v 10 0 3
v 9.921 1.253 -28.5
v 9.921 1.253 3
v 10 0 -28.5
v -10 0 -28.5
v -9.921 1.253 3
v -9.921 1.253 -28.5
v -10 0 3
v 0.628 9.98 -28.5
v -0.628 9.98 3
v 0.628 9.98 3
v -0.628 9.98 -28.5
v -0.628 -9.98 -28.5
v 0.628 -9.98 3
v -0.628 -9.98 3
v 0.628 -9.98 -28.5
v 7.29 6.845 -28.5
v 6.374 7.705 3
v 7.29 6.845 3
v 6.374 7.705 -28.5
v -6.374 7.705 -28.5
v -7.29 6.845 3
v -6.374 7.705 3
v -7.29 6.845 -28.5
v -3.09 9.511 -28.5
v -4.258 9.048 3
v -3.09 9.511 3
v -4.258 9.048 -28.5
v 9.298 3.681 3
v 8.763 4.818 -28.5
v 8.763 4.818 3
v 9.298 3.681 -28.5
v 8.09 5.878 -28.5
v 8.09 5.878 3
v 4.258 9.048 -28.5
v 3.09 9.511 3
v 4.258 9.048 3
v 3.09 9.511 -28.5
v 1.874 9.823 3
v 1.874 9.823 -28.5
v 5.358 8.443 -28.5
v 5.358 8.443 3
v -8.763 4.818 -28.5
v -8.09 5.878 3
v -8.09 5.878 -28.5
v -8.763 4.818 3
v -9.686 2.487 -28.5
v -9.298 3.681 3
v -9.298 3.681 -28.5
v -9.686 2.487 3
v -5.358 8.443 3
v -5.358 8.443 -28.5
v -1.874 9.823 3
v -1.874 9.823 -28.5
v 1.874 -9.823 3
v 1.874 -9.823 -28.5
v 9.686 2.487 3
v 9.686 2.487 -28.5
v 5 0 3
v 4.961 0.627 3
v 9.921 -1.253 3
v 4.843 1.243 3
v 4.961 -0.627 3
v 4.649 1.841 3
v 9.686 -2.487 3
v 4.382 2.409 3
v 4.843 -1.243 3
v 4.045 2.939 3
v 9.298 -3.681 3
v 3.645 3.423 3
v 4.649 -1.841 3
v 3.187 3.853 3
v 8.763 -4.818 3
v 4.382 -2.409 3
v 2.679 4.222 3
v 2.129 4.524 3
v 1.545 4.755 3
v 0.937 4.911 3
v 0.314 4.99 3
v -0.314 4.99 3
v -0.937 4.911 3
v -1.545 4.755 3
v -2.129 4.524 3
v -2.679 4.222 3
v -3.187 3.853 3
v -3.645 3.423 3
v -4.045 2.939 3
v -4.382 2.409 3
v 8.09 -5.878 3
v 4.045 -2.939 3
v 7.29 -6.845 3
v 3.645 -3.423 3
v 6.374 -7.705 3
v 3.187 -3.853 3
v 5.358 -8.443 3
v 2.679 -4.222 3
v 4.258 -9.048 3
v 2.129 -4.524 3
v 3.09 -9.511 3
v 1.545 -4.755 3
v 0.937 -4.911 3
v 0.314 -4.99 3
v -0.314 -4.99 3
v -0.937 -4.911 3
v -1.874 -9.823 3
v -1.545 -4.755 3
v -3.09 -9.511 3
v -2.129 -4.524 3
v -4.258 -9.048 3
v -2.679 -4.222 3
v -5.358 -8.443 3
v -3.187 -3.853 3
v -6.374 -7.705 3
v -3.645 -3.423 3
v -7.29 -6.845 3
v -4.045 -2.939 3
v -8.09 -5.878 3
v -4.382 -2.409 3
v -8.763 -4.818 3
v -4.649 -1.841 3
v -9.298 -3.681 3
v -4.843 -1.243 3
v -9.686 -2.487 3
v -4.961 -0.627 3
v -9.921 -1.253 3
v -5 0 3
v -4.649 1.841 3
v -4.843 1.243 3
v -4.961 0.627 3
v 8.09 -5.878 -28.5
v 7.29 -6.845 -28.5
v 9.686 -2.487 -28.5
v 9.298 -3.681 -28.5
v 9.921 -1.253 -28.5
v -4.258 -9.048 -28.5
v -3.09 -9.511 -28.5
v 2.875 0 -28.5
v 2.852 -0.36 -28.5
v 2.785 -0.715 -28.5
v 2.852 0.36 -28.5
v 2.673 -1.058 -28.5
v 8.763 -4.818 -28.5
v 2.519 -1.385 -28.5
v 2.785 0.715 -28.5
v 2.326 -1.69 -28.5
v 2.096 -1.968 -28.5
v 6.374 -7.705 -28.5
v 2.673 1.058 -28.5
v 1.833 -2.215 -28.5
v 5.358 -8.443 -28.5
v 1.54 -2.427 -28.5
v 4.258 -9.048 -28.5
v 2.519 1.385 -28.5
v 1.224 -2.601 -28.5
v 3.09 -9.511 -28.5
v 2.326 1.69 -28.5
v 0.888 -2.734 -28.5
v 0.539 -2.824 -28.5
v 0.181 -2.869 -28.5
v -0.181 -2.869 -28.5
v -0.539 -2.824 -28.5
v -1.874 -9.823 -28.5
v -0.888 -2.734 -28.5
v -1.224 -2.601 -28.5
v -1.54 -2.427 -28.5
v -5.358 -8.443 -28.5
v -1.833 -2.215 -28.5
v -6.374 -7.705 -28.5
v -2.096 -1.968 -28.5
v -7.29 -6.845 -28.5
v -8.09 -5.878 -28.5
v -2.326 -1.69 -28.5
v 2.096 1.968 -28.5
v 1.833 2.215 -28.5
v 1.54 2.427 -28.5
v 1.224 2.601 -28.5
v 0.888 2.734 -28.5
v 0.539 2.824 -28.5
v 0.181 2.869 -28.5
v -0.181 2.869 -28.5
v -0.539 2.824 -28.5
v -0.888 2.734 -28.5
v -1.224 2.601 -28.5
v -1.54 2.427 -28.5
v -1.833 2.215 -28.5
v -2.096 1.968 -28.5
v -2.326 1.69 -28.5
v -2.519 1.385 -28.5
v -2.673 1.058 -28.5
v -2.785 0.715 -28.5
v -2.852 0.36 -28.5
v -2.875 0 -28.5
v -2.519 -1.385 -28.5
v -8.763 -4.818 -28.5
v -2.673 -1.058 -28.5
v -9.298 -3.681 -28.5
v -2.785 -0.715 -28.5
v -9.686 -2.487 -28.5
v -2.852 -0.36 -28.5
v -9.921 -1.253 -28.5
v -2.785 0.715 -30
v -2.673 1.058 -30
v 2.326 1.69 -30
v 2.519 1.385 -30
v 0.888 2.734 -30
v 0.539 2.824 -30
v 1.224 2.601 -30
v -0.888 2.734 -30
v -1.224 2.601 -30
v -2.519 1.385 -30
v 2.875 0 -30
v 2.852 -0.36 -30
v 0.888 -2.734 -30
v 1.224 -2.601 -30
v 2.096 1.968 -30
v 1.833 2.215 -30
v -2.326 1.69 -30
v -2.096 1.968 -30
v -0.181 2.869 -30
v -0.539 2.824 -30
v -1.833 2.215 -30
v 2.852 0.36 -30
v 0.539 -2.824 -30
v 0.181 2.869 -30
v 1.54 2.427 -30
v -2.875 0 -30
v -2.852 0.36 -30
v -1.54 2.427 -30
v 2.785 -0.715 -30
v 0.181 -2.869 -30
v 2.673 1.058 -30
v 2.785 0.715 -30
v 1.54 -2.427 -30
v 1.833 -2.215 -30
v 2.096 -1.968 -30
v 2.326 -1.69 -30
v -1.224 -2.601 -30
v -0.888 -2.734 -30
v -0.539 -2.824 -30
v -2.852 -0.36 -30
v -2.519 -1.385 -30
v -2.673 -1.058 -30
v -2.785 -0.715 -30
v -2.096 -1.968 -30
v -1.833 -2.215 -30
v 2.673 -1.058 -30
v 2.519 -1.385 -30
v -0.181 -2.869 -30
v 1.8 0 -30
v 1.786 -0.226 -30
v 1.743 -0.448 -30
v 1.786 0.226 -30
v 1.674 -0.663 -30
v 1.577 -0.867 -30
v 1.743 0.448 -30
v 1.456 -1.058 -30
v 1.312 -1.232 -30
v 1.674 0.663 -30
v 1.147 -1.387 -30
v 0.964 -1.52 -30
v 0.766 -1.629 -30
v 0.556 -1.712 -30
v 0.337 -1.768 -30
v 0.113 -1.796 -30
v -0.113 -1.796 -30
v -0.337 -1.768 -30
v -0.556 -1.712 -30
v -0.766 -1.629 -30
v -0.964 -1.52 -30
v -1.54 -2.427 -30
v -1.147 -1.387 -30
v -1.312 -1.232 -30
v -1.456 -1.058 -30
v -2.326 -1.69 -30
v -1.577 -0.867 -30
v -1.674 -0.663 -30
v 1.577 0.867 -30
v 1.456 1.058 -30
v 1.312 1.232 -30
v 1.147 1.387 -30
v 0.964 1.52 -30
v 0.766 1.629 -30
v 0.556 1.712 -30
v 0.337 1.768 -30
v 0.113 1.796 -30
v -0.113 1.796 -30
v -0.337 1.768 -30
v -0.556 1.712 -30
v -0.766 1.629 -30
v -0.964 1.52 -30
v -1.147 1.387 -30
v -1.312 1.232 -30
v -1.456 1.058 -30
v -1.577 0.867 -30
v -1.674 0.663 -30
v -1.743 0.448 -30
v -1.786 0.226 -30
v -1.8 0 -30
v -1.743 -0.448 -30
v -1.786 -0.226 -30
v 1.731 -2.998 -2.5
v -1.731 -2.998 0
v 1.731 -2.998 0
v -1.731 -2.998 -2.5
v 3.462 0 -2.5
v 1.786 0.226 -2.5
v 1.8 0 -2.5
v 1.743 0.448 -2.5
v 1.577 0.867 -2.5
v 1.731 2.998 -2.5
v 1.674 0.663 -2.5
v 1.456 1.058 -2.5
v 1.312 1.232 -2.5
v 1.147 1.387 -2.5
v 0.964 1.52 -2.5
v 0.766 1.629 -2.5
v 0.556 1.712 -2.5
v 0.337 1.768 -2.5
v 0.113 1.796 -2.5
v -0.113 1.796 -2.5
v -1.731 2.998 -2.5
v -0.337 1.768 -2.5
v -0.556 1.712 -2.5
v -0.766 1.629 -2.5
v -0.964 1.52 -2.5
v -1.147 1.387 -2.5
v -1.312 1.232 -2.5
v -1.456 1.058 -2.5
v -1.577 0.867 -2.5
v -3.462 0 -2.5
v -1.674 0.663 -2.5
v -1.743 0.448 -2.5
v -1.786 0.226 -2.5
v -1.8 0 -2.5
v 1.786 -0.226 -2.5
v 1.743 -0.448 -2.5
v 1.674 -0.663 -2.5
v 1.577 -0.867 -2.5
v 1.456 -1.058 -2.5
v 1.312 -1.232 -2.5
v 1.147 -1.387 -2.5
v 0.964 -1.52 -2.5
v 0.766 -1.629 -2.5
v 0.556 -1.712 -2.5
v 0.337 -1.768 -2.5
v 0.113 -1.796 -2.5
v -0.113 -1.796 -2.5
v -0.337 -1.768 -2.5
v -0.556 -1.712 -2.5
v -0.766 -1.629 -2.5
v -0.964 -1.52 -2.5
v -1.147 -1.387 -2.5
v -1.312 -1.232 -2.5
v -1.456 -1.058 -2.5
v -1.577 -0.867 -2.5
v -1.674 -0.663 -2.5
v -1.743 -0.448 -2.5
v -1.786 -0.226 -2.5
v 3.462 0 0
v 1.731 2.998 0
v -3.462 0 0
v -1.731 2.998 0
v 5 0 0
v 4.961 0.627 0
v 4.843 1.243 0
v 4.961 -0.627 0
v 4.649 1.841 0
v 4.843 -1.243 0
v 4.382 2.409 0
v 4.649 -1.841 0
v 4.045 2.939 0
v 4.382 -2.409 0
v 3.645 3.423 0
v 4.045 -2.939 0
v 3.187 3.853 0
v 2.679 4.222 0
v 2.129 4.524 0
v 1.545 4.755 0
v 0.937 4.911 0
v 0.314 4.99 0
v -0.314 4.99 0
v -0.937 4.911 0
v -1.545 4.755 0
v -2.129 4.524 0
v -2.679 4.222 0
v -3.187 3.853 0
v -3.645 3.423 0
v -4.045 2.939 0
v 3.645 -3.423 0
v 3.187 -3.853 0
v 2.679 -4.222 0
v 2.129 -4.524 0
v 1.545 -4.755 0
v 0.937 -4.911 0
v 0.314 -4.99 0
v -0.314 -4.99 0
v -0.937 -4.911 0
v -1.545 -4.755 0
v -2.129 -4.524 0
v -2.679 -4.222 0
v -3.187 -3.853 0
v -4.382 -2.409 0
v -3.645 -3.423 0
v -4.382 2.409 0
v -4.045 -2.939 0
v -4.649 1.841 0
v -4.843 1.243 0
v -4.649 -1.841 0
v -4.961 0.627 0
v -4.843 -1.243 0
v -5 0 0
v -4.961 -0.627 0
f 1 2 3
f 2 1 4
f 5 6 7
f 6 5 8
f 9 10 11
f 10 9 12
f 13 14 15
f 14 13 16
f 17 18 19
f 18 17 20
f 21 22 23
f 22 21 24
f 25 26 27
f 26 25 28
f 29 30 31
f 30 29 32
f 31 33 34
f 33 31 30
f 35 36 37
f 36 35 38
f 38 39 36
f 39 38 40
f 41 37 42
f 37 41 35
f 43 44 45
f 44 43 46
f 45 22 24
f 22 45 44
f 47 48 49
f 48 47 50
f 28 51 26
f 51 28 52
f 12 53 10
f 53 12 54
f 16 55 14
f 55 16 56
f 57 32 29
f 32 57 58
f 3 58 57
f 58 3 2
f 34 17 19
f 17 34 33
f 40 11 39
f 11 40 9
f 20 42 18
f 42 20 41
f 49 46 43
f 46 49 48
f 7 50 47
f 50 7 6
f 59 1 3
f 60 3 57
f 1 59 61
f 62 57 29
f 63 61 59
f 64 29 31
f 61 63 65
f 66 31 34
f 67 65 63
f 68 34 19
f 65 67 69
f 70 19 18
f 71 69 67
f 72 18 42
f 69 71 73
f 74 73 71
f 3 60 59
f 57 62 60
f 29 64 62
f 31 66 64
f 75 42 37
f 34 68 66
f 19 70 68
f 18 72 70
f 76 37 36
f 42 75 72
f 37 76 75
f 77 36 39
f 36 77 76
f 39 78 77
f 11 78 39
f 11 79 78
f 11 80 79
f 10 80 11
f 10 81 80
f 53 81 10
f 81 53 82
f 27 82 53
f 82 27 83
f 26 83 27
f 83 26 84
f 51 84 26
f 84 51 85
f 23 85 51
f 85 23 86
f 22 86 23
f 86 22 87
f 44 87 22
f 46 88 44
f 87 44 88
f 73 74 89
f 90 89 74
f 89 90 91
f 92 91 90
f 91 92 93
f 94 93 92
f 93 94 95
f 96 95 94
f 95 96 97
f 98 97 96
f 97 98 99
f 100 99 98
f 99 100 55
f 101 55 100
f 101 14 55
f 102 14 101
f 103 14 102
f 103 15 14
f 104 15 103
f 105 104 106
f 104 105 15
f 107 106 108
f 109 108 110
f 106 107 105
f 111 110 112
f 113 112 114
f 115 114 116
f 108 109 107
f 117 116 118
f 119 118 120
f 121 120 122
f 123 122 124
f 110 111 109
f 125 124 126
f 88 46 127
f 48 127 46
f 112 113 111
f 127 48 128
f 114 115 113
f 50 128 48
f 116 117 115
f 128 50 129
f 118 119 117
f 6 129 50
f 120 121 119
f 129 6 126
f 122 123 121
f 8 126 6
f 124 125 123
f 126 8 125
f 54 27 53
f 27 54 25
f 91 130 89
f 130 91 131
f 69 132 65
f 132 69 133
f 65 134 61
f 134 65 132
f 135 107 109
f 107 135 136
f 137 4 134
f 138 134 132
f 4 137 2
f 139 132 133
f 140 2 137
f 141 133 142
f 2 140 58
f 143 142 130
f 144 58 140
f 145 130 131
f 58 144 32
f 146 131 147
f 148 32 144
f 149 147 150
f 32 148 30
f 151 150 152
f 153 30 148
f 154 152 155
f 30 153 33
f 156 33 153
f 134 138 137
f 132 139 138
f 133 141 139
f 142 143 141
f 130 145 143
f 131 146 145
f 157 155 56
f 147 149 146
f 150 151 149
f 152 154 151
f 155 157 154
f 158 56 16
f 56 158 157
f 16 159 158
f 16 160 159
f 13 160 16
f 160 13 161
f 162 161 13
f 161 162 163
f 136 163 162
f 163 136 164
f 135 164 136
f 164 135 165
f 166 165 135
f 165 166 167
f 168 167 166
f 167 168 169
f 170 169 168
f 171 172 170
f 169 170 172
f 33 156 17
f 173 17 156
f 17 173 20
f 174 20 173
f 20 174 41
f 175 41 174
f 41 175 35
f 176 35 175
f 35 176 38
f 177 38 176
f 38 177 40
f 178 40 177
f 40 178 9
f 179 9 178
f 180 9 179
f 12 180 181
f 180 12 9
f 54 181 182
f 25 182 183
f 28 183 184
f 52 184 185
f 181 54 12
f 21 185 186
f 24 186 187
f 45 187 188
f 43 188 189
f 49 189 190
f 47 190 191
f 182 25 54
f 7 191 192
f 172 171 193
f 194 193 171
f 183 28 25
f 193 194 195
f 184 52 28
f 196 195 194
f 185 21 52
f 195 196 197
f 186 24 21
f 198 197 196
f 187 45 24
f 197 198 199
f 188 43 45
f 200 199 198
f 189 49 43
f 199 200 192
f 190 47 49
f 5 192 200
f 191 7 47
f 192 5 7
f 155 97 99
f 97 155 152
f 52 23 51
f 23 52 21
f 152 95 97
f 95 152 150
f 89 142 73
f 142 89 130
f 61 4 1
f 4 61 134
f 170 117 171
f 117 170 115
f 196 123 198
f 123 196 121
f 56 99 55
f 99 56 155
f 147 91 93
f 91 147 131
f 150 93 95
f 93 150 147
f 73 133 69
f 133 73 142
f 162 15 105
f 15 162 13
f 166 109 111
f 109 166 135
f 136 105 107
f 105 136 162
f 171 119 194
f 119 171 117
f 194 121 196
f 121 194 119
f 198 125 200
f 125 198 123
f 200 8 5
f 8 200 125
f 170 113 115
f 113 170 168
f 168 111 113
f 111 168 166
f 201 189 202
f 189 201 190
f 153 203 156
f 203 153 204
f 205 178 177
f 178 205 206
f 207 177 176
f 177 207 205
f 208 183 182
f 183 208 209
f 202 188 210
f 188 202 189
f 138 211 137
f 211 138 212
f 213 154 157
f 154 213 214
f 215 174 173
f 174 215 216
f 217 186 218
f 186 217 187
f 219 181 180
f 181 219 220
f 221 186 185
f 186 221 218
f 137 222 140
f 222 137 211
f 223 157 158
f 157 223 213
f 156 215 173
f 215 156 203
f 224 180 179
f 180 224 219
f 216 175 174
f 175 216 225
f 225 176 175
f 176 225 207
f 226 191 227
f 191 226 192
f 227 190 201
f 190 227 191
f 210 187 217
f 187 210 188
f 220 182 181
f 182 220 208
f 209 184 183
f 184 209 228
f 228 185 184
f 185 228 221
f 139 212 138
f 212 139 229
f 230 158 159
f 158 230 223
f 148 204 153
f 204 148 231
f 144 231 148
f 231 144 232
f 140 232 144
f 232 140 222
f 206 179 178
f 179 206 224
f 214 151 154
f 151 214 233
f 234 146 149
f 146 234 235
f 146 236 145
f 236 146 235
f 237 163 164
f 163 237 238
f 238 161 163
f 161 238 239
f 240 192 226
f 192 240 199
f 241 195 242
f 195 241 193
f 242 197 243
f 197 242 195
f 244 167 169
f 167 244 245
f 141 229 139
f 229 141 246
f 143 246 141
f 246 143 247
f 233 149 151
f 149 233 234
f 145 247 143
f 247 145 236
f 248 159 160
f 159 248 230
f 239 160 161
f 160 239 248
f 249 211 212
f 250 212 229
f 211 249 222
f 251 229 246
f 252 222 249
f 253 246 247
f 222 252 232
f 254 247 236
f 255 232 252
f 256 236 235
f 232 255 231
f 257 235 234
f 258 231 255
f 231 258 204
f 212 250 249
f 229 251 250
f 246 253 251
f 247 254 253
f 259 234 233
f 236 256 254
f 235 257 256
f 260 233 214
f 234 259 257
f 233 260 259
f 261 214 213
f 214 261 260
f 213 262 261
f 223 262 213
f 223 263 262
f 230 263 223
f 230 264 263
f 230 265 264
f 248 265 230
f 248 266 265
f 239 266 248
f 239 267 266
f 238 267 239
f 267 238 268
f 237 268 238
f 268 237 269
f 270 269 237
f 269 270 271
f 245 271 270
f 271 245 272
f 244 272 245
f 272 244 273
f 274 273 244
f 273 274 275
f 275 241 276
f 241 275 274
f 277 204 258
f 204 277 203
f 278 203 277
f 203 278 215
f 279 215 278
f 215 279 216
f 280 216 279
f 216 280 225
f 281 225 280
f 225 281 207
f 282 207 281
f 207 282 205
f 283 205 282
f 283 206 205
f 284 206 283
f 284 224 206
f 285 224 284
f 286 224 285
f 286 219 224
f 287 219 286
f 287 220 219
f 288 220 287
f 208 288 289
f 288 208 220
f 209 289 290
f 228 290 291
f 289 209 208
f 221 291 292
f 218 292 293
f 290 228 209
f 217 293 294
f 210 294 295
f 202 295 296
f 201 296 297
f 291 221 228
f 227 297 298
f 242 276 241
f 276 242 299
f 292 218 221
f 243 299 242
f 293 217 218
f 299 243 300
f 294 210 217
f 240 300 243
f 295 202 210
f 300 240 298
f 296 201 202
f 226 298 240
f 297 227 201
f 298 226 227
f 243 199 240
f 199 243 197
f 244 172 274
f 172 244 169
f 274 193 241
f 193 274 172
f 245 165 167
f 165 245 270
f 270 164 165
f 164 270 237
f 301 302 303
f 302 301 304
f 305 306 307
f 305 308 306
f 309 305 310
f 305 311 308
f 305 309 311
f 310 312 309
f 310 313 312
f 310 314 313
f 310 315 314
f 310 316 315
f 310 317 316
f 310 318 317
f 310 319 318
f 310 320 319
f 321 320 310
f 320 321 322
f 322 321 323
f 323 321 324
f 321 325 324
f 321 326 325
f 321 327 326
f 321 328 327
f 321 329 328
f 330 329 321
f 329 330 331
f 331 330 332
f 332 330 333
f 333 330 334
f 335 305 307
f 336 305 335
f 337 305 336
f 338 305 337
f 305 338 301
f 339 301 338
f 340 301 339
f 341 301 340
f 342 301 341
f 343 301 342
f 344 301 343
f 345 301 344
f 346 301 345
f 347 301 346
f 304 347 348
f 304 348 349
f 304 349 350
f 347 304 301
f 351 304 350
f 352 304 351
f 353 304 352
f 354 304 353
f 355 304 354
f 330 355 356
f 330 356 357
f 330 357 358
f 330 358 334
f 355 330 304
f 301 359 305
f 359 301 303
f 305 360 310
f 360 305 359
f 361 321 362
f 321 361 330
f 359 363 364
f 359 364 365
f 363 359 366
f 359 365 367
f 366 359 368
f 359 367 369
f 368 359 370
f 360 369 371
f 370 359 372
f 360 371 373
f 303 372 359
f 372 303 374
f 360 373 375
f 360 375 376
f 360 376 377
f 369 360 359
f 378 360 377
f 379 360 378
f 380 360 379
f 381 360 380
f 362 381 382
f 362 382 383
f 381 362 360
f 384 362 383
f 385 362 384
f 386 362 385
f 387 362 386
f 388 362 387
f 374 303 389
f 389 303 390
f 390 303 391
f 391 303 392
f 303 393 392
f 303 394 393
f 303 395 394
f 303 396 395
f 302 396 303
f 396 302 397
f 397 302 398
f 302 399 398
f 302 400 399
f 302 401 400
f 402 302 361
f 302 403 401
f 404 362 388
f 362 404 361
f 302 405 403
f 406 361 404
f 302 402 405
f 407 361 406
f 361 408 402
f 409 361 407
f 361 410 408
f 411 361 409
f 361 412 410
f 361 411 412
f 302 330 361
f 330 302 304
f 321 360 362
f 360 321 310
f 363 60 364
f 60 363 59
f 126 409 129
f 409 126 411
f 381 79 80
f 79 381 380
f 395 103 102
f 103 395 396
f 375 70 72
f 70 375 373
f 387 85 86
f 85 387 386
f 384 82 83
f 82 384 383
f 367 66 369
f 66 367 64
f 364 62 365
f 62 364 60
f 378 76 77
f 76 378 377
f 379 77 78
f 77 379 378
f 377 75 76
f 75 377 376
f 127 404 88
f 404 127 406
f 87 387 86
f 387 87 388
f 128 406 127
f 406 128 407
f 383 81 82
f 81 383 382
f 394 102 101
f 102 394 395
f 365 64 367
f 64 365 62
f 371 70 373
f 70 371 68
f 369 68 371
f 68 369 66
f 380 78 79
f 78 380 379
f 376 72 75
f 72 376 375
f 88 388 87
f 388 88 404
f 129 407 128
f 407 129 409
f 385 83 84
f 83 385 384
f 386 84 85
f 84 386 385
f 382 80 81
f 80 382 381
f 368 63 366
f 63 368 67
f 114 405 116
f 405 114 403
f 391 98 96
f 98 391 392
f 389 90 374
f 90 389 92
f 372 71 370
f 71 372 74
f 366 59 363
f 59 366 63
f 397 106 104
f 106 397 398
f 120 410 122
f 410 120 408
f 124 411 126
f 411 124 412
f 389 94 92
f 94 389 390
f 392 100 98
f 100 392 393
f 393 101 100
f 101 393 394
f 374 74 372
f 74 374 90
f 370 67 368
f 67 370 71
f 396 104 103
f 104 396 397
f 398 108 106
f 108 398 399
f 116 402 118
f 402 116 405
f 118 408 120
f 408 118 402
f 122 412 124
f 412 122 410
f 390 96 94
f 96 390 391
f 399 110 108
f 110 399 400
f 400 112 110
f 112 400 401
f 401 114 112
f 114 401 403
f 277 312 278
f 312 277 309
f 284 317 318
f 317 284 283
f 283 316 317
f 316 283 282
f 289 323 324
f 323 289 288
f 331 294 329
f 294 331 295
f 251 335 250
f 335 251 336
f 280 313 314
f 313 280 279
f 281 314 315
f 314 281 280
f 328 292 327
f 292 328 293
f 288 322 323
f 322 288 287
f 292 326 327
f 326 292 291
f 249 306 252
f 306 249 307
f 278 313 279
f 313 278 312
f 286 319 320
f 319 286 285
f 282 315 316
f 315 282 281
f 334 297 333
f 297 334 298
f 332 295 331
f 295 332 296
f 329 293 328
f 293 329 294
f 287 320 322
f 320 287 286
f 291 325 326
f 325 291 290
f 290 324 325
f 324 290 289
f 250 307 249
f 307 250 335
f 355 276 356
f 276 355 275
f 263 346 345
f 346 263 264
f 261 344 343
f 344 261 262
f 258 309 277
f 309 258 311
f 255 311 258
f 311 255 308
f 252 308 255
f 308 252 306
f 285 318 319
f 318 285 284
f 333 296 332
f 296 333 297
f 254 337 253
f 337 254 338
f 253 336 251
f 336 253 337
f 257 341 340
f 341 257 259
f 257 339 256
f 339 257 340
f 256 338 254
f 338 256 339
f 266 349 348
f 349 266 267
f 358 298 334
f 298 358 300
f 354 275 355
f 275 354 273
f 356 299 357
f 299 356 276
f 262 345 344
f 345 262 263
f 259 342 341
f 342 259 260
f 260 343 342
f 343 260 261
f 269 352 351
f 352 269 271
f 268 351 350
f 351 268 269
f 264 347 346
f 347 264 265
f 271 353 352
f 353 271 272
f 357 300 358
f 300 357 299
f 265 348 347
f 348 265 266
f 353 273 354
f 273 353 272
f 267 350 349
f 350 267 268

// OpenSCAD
$fn = 50;

difference() {
	union() {
		translate(v = [0, 0, -28.5]) {
			cylinder(h = 31.5, r = 10.0);
		}
		#translate(v = [0, 0, -30.0]) {
			cylinder(h = 30, r = 2.875);
		}
	}
	union() {
		translate(v = [0, 0, 0]) {
			rotate(a = [0, 0, 0]) {
				difference() {
					union() {
						translate(v = [0, 0, -2.5]) {
							linear_extrude(height = 2.5) {
								polygon(points = [[3.4619999999999997, 0.0], [1.7310000000000003, 2.9981799479017264], [-1.7309999999999992, 2.9981799479017264], [-3.4619999999999997, 4.2397272186481365e-16], [-1.7310000000000014, -2.998179947901726], [1.7309999999999977, -2.9981799479017277]]);
							}
						}
					}
					union();
				}
			}
		}
		#cylinder(h = 3, r = 5.0);
		#translate(v = [0, 0, -100.0]) {
			cylinder(h = 200, r = 1.8);
		}
	}
}
